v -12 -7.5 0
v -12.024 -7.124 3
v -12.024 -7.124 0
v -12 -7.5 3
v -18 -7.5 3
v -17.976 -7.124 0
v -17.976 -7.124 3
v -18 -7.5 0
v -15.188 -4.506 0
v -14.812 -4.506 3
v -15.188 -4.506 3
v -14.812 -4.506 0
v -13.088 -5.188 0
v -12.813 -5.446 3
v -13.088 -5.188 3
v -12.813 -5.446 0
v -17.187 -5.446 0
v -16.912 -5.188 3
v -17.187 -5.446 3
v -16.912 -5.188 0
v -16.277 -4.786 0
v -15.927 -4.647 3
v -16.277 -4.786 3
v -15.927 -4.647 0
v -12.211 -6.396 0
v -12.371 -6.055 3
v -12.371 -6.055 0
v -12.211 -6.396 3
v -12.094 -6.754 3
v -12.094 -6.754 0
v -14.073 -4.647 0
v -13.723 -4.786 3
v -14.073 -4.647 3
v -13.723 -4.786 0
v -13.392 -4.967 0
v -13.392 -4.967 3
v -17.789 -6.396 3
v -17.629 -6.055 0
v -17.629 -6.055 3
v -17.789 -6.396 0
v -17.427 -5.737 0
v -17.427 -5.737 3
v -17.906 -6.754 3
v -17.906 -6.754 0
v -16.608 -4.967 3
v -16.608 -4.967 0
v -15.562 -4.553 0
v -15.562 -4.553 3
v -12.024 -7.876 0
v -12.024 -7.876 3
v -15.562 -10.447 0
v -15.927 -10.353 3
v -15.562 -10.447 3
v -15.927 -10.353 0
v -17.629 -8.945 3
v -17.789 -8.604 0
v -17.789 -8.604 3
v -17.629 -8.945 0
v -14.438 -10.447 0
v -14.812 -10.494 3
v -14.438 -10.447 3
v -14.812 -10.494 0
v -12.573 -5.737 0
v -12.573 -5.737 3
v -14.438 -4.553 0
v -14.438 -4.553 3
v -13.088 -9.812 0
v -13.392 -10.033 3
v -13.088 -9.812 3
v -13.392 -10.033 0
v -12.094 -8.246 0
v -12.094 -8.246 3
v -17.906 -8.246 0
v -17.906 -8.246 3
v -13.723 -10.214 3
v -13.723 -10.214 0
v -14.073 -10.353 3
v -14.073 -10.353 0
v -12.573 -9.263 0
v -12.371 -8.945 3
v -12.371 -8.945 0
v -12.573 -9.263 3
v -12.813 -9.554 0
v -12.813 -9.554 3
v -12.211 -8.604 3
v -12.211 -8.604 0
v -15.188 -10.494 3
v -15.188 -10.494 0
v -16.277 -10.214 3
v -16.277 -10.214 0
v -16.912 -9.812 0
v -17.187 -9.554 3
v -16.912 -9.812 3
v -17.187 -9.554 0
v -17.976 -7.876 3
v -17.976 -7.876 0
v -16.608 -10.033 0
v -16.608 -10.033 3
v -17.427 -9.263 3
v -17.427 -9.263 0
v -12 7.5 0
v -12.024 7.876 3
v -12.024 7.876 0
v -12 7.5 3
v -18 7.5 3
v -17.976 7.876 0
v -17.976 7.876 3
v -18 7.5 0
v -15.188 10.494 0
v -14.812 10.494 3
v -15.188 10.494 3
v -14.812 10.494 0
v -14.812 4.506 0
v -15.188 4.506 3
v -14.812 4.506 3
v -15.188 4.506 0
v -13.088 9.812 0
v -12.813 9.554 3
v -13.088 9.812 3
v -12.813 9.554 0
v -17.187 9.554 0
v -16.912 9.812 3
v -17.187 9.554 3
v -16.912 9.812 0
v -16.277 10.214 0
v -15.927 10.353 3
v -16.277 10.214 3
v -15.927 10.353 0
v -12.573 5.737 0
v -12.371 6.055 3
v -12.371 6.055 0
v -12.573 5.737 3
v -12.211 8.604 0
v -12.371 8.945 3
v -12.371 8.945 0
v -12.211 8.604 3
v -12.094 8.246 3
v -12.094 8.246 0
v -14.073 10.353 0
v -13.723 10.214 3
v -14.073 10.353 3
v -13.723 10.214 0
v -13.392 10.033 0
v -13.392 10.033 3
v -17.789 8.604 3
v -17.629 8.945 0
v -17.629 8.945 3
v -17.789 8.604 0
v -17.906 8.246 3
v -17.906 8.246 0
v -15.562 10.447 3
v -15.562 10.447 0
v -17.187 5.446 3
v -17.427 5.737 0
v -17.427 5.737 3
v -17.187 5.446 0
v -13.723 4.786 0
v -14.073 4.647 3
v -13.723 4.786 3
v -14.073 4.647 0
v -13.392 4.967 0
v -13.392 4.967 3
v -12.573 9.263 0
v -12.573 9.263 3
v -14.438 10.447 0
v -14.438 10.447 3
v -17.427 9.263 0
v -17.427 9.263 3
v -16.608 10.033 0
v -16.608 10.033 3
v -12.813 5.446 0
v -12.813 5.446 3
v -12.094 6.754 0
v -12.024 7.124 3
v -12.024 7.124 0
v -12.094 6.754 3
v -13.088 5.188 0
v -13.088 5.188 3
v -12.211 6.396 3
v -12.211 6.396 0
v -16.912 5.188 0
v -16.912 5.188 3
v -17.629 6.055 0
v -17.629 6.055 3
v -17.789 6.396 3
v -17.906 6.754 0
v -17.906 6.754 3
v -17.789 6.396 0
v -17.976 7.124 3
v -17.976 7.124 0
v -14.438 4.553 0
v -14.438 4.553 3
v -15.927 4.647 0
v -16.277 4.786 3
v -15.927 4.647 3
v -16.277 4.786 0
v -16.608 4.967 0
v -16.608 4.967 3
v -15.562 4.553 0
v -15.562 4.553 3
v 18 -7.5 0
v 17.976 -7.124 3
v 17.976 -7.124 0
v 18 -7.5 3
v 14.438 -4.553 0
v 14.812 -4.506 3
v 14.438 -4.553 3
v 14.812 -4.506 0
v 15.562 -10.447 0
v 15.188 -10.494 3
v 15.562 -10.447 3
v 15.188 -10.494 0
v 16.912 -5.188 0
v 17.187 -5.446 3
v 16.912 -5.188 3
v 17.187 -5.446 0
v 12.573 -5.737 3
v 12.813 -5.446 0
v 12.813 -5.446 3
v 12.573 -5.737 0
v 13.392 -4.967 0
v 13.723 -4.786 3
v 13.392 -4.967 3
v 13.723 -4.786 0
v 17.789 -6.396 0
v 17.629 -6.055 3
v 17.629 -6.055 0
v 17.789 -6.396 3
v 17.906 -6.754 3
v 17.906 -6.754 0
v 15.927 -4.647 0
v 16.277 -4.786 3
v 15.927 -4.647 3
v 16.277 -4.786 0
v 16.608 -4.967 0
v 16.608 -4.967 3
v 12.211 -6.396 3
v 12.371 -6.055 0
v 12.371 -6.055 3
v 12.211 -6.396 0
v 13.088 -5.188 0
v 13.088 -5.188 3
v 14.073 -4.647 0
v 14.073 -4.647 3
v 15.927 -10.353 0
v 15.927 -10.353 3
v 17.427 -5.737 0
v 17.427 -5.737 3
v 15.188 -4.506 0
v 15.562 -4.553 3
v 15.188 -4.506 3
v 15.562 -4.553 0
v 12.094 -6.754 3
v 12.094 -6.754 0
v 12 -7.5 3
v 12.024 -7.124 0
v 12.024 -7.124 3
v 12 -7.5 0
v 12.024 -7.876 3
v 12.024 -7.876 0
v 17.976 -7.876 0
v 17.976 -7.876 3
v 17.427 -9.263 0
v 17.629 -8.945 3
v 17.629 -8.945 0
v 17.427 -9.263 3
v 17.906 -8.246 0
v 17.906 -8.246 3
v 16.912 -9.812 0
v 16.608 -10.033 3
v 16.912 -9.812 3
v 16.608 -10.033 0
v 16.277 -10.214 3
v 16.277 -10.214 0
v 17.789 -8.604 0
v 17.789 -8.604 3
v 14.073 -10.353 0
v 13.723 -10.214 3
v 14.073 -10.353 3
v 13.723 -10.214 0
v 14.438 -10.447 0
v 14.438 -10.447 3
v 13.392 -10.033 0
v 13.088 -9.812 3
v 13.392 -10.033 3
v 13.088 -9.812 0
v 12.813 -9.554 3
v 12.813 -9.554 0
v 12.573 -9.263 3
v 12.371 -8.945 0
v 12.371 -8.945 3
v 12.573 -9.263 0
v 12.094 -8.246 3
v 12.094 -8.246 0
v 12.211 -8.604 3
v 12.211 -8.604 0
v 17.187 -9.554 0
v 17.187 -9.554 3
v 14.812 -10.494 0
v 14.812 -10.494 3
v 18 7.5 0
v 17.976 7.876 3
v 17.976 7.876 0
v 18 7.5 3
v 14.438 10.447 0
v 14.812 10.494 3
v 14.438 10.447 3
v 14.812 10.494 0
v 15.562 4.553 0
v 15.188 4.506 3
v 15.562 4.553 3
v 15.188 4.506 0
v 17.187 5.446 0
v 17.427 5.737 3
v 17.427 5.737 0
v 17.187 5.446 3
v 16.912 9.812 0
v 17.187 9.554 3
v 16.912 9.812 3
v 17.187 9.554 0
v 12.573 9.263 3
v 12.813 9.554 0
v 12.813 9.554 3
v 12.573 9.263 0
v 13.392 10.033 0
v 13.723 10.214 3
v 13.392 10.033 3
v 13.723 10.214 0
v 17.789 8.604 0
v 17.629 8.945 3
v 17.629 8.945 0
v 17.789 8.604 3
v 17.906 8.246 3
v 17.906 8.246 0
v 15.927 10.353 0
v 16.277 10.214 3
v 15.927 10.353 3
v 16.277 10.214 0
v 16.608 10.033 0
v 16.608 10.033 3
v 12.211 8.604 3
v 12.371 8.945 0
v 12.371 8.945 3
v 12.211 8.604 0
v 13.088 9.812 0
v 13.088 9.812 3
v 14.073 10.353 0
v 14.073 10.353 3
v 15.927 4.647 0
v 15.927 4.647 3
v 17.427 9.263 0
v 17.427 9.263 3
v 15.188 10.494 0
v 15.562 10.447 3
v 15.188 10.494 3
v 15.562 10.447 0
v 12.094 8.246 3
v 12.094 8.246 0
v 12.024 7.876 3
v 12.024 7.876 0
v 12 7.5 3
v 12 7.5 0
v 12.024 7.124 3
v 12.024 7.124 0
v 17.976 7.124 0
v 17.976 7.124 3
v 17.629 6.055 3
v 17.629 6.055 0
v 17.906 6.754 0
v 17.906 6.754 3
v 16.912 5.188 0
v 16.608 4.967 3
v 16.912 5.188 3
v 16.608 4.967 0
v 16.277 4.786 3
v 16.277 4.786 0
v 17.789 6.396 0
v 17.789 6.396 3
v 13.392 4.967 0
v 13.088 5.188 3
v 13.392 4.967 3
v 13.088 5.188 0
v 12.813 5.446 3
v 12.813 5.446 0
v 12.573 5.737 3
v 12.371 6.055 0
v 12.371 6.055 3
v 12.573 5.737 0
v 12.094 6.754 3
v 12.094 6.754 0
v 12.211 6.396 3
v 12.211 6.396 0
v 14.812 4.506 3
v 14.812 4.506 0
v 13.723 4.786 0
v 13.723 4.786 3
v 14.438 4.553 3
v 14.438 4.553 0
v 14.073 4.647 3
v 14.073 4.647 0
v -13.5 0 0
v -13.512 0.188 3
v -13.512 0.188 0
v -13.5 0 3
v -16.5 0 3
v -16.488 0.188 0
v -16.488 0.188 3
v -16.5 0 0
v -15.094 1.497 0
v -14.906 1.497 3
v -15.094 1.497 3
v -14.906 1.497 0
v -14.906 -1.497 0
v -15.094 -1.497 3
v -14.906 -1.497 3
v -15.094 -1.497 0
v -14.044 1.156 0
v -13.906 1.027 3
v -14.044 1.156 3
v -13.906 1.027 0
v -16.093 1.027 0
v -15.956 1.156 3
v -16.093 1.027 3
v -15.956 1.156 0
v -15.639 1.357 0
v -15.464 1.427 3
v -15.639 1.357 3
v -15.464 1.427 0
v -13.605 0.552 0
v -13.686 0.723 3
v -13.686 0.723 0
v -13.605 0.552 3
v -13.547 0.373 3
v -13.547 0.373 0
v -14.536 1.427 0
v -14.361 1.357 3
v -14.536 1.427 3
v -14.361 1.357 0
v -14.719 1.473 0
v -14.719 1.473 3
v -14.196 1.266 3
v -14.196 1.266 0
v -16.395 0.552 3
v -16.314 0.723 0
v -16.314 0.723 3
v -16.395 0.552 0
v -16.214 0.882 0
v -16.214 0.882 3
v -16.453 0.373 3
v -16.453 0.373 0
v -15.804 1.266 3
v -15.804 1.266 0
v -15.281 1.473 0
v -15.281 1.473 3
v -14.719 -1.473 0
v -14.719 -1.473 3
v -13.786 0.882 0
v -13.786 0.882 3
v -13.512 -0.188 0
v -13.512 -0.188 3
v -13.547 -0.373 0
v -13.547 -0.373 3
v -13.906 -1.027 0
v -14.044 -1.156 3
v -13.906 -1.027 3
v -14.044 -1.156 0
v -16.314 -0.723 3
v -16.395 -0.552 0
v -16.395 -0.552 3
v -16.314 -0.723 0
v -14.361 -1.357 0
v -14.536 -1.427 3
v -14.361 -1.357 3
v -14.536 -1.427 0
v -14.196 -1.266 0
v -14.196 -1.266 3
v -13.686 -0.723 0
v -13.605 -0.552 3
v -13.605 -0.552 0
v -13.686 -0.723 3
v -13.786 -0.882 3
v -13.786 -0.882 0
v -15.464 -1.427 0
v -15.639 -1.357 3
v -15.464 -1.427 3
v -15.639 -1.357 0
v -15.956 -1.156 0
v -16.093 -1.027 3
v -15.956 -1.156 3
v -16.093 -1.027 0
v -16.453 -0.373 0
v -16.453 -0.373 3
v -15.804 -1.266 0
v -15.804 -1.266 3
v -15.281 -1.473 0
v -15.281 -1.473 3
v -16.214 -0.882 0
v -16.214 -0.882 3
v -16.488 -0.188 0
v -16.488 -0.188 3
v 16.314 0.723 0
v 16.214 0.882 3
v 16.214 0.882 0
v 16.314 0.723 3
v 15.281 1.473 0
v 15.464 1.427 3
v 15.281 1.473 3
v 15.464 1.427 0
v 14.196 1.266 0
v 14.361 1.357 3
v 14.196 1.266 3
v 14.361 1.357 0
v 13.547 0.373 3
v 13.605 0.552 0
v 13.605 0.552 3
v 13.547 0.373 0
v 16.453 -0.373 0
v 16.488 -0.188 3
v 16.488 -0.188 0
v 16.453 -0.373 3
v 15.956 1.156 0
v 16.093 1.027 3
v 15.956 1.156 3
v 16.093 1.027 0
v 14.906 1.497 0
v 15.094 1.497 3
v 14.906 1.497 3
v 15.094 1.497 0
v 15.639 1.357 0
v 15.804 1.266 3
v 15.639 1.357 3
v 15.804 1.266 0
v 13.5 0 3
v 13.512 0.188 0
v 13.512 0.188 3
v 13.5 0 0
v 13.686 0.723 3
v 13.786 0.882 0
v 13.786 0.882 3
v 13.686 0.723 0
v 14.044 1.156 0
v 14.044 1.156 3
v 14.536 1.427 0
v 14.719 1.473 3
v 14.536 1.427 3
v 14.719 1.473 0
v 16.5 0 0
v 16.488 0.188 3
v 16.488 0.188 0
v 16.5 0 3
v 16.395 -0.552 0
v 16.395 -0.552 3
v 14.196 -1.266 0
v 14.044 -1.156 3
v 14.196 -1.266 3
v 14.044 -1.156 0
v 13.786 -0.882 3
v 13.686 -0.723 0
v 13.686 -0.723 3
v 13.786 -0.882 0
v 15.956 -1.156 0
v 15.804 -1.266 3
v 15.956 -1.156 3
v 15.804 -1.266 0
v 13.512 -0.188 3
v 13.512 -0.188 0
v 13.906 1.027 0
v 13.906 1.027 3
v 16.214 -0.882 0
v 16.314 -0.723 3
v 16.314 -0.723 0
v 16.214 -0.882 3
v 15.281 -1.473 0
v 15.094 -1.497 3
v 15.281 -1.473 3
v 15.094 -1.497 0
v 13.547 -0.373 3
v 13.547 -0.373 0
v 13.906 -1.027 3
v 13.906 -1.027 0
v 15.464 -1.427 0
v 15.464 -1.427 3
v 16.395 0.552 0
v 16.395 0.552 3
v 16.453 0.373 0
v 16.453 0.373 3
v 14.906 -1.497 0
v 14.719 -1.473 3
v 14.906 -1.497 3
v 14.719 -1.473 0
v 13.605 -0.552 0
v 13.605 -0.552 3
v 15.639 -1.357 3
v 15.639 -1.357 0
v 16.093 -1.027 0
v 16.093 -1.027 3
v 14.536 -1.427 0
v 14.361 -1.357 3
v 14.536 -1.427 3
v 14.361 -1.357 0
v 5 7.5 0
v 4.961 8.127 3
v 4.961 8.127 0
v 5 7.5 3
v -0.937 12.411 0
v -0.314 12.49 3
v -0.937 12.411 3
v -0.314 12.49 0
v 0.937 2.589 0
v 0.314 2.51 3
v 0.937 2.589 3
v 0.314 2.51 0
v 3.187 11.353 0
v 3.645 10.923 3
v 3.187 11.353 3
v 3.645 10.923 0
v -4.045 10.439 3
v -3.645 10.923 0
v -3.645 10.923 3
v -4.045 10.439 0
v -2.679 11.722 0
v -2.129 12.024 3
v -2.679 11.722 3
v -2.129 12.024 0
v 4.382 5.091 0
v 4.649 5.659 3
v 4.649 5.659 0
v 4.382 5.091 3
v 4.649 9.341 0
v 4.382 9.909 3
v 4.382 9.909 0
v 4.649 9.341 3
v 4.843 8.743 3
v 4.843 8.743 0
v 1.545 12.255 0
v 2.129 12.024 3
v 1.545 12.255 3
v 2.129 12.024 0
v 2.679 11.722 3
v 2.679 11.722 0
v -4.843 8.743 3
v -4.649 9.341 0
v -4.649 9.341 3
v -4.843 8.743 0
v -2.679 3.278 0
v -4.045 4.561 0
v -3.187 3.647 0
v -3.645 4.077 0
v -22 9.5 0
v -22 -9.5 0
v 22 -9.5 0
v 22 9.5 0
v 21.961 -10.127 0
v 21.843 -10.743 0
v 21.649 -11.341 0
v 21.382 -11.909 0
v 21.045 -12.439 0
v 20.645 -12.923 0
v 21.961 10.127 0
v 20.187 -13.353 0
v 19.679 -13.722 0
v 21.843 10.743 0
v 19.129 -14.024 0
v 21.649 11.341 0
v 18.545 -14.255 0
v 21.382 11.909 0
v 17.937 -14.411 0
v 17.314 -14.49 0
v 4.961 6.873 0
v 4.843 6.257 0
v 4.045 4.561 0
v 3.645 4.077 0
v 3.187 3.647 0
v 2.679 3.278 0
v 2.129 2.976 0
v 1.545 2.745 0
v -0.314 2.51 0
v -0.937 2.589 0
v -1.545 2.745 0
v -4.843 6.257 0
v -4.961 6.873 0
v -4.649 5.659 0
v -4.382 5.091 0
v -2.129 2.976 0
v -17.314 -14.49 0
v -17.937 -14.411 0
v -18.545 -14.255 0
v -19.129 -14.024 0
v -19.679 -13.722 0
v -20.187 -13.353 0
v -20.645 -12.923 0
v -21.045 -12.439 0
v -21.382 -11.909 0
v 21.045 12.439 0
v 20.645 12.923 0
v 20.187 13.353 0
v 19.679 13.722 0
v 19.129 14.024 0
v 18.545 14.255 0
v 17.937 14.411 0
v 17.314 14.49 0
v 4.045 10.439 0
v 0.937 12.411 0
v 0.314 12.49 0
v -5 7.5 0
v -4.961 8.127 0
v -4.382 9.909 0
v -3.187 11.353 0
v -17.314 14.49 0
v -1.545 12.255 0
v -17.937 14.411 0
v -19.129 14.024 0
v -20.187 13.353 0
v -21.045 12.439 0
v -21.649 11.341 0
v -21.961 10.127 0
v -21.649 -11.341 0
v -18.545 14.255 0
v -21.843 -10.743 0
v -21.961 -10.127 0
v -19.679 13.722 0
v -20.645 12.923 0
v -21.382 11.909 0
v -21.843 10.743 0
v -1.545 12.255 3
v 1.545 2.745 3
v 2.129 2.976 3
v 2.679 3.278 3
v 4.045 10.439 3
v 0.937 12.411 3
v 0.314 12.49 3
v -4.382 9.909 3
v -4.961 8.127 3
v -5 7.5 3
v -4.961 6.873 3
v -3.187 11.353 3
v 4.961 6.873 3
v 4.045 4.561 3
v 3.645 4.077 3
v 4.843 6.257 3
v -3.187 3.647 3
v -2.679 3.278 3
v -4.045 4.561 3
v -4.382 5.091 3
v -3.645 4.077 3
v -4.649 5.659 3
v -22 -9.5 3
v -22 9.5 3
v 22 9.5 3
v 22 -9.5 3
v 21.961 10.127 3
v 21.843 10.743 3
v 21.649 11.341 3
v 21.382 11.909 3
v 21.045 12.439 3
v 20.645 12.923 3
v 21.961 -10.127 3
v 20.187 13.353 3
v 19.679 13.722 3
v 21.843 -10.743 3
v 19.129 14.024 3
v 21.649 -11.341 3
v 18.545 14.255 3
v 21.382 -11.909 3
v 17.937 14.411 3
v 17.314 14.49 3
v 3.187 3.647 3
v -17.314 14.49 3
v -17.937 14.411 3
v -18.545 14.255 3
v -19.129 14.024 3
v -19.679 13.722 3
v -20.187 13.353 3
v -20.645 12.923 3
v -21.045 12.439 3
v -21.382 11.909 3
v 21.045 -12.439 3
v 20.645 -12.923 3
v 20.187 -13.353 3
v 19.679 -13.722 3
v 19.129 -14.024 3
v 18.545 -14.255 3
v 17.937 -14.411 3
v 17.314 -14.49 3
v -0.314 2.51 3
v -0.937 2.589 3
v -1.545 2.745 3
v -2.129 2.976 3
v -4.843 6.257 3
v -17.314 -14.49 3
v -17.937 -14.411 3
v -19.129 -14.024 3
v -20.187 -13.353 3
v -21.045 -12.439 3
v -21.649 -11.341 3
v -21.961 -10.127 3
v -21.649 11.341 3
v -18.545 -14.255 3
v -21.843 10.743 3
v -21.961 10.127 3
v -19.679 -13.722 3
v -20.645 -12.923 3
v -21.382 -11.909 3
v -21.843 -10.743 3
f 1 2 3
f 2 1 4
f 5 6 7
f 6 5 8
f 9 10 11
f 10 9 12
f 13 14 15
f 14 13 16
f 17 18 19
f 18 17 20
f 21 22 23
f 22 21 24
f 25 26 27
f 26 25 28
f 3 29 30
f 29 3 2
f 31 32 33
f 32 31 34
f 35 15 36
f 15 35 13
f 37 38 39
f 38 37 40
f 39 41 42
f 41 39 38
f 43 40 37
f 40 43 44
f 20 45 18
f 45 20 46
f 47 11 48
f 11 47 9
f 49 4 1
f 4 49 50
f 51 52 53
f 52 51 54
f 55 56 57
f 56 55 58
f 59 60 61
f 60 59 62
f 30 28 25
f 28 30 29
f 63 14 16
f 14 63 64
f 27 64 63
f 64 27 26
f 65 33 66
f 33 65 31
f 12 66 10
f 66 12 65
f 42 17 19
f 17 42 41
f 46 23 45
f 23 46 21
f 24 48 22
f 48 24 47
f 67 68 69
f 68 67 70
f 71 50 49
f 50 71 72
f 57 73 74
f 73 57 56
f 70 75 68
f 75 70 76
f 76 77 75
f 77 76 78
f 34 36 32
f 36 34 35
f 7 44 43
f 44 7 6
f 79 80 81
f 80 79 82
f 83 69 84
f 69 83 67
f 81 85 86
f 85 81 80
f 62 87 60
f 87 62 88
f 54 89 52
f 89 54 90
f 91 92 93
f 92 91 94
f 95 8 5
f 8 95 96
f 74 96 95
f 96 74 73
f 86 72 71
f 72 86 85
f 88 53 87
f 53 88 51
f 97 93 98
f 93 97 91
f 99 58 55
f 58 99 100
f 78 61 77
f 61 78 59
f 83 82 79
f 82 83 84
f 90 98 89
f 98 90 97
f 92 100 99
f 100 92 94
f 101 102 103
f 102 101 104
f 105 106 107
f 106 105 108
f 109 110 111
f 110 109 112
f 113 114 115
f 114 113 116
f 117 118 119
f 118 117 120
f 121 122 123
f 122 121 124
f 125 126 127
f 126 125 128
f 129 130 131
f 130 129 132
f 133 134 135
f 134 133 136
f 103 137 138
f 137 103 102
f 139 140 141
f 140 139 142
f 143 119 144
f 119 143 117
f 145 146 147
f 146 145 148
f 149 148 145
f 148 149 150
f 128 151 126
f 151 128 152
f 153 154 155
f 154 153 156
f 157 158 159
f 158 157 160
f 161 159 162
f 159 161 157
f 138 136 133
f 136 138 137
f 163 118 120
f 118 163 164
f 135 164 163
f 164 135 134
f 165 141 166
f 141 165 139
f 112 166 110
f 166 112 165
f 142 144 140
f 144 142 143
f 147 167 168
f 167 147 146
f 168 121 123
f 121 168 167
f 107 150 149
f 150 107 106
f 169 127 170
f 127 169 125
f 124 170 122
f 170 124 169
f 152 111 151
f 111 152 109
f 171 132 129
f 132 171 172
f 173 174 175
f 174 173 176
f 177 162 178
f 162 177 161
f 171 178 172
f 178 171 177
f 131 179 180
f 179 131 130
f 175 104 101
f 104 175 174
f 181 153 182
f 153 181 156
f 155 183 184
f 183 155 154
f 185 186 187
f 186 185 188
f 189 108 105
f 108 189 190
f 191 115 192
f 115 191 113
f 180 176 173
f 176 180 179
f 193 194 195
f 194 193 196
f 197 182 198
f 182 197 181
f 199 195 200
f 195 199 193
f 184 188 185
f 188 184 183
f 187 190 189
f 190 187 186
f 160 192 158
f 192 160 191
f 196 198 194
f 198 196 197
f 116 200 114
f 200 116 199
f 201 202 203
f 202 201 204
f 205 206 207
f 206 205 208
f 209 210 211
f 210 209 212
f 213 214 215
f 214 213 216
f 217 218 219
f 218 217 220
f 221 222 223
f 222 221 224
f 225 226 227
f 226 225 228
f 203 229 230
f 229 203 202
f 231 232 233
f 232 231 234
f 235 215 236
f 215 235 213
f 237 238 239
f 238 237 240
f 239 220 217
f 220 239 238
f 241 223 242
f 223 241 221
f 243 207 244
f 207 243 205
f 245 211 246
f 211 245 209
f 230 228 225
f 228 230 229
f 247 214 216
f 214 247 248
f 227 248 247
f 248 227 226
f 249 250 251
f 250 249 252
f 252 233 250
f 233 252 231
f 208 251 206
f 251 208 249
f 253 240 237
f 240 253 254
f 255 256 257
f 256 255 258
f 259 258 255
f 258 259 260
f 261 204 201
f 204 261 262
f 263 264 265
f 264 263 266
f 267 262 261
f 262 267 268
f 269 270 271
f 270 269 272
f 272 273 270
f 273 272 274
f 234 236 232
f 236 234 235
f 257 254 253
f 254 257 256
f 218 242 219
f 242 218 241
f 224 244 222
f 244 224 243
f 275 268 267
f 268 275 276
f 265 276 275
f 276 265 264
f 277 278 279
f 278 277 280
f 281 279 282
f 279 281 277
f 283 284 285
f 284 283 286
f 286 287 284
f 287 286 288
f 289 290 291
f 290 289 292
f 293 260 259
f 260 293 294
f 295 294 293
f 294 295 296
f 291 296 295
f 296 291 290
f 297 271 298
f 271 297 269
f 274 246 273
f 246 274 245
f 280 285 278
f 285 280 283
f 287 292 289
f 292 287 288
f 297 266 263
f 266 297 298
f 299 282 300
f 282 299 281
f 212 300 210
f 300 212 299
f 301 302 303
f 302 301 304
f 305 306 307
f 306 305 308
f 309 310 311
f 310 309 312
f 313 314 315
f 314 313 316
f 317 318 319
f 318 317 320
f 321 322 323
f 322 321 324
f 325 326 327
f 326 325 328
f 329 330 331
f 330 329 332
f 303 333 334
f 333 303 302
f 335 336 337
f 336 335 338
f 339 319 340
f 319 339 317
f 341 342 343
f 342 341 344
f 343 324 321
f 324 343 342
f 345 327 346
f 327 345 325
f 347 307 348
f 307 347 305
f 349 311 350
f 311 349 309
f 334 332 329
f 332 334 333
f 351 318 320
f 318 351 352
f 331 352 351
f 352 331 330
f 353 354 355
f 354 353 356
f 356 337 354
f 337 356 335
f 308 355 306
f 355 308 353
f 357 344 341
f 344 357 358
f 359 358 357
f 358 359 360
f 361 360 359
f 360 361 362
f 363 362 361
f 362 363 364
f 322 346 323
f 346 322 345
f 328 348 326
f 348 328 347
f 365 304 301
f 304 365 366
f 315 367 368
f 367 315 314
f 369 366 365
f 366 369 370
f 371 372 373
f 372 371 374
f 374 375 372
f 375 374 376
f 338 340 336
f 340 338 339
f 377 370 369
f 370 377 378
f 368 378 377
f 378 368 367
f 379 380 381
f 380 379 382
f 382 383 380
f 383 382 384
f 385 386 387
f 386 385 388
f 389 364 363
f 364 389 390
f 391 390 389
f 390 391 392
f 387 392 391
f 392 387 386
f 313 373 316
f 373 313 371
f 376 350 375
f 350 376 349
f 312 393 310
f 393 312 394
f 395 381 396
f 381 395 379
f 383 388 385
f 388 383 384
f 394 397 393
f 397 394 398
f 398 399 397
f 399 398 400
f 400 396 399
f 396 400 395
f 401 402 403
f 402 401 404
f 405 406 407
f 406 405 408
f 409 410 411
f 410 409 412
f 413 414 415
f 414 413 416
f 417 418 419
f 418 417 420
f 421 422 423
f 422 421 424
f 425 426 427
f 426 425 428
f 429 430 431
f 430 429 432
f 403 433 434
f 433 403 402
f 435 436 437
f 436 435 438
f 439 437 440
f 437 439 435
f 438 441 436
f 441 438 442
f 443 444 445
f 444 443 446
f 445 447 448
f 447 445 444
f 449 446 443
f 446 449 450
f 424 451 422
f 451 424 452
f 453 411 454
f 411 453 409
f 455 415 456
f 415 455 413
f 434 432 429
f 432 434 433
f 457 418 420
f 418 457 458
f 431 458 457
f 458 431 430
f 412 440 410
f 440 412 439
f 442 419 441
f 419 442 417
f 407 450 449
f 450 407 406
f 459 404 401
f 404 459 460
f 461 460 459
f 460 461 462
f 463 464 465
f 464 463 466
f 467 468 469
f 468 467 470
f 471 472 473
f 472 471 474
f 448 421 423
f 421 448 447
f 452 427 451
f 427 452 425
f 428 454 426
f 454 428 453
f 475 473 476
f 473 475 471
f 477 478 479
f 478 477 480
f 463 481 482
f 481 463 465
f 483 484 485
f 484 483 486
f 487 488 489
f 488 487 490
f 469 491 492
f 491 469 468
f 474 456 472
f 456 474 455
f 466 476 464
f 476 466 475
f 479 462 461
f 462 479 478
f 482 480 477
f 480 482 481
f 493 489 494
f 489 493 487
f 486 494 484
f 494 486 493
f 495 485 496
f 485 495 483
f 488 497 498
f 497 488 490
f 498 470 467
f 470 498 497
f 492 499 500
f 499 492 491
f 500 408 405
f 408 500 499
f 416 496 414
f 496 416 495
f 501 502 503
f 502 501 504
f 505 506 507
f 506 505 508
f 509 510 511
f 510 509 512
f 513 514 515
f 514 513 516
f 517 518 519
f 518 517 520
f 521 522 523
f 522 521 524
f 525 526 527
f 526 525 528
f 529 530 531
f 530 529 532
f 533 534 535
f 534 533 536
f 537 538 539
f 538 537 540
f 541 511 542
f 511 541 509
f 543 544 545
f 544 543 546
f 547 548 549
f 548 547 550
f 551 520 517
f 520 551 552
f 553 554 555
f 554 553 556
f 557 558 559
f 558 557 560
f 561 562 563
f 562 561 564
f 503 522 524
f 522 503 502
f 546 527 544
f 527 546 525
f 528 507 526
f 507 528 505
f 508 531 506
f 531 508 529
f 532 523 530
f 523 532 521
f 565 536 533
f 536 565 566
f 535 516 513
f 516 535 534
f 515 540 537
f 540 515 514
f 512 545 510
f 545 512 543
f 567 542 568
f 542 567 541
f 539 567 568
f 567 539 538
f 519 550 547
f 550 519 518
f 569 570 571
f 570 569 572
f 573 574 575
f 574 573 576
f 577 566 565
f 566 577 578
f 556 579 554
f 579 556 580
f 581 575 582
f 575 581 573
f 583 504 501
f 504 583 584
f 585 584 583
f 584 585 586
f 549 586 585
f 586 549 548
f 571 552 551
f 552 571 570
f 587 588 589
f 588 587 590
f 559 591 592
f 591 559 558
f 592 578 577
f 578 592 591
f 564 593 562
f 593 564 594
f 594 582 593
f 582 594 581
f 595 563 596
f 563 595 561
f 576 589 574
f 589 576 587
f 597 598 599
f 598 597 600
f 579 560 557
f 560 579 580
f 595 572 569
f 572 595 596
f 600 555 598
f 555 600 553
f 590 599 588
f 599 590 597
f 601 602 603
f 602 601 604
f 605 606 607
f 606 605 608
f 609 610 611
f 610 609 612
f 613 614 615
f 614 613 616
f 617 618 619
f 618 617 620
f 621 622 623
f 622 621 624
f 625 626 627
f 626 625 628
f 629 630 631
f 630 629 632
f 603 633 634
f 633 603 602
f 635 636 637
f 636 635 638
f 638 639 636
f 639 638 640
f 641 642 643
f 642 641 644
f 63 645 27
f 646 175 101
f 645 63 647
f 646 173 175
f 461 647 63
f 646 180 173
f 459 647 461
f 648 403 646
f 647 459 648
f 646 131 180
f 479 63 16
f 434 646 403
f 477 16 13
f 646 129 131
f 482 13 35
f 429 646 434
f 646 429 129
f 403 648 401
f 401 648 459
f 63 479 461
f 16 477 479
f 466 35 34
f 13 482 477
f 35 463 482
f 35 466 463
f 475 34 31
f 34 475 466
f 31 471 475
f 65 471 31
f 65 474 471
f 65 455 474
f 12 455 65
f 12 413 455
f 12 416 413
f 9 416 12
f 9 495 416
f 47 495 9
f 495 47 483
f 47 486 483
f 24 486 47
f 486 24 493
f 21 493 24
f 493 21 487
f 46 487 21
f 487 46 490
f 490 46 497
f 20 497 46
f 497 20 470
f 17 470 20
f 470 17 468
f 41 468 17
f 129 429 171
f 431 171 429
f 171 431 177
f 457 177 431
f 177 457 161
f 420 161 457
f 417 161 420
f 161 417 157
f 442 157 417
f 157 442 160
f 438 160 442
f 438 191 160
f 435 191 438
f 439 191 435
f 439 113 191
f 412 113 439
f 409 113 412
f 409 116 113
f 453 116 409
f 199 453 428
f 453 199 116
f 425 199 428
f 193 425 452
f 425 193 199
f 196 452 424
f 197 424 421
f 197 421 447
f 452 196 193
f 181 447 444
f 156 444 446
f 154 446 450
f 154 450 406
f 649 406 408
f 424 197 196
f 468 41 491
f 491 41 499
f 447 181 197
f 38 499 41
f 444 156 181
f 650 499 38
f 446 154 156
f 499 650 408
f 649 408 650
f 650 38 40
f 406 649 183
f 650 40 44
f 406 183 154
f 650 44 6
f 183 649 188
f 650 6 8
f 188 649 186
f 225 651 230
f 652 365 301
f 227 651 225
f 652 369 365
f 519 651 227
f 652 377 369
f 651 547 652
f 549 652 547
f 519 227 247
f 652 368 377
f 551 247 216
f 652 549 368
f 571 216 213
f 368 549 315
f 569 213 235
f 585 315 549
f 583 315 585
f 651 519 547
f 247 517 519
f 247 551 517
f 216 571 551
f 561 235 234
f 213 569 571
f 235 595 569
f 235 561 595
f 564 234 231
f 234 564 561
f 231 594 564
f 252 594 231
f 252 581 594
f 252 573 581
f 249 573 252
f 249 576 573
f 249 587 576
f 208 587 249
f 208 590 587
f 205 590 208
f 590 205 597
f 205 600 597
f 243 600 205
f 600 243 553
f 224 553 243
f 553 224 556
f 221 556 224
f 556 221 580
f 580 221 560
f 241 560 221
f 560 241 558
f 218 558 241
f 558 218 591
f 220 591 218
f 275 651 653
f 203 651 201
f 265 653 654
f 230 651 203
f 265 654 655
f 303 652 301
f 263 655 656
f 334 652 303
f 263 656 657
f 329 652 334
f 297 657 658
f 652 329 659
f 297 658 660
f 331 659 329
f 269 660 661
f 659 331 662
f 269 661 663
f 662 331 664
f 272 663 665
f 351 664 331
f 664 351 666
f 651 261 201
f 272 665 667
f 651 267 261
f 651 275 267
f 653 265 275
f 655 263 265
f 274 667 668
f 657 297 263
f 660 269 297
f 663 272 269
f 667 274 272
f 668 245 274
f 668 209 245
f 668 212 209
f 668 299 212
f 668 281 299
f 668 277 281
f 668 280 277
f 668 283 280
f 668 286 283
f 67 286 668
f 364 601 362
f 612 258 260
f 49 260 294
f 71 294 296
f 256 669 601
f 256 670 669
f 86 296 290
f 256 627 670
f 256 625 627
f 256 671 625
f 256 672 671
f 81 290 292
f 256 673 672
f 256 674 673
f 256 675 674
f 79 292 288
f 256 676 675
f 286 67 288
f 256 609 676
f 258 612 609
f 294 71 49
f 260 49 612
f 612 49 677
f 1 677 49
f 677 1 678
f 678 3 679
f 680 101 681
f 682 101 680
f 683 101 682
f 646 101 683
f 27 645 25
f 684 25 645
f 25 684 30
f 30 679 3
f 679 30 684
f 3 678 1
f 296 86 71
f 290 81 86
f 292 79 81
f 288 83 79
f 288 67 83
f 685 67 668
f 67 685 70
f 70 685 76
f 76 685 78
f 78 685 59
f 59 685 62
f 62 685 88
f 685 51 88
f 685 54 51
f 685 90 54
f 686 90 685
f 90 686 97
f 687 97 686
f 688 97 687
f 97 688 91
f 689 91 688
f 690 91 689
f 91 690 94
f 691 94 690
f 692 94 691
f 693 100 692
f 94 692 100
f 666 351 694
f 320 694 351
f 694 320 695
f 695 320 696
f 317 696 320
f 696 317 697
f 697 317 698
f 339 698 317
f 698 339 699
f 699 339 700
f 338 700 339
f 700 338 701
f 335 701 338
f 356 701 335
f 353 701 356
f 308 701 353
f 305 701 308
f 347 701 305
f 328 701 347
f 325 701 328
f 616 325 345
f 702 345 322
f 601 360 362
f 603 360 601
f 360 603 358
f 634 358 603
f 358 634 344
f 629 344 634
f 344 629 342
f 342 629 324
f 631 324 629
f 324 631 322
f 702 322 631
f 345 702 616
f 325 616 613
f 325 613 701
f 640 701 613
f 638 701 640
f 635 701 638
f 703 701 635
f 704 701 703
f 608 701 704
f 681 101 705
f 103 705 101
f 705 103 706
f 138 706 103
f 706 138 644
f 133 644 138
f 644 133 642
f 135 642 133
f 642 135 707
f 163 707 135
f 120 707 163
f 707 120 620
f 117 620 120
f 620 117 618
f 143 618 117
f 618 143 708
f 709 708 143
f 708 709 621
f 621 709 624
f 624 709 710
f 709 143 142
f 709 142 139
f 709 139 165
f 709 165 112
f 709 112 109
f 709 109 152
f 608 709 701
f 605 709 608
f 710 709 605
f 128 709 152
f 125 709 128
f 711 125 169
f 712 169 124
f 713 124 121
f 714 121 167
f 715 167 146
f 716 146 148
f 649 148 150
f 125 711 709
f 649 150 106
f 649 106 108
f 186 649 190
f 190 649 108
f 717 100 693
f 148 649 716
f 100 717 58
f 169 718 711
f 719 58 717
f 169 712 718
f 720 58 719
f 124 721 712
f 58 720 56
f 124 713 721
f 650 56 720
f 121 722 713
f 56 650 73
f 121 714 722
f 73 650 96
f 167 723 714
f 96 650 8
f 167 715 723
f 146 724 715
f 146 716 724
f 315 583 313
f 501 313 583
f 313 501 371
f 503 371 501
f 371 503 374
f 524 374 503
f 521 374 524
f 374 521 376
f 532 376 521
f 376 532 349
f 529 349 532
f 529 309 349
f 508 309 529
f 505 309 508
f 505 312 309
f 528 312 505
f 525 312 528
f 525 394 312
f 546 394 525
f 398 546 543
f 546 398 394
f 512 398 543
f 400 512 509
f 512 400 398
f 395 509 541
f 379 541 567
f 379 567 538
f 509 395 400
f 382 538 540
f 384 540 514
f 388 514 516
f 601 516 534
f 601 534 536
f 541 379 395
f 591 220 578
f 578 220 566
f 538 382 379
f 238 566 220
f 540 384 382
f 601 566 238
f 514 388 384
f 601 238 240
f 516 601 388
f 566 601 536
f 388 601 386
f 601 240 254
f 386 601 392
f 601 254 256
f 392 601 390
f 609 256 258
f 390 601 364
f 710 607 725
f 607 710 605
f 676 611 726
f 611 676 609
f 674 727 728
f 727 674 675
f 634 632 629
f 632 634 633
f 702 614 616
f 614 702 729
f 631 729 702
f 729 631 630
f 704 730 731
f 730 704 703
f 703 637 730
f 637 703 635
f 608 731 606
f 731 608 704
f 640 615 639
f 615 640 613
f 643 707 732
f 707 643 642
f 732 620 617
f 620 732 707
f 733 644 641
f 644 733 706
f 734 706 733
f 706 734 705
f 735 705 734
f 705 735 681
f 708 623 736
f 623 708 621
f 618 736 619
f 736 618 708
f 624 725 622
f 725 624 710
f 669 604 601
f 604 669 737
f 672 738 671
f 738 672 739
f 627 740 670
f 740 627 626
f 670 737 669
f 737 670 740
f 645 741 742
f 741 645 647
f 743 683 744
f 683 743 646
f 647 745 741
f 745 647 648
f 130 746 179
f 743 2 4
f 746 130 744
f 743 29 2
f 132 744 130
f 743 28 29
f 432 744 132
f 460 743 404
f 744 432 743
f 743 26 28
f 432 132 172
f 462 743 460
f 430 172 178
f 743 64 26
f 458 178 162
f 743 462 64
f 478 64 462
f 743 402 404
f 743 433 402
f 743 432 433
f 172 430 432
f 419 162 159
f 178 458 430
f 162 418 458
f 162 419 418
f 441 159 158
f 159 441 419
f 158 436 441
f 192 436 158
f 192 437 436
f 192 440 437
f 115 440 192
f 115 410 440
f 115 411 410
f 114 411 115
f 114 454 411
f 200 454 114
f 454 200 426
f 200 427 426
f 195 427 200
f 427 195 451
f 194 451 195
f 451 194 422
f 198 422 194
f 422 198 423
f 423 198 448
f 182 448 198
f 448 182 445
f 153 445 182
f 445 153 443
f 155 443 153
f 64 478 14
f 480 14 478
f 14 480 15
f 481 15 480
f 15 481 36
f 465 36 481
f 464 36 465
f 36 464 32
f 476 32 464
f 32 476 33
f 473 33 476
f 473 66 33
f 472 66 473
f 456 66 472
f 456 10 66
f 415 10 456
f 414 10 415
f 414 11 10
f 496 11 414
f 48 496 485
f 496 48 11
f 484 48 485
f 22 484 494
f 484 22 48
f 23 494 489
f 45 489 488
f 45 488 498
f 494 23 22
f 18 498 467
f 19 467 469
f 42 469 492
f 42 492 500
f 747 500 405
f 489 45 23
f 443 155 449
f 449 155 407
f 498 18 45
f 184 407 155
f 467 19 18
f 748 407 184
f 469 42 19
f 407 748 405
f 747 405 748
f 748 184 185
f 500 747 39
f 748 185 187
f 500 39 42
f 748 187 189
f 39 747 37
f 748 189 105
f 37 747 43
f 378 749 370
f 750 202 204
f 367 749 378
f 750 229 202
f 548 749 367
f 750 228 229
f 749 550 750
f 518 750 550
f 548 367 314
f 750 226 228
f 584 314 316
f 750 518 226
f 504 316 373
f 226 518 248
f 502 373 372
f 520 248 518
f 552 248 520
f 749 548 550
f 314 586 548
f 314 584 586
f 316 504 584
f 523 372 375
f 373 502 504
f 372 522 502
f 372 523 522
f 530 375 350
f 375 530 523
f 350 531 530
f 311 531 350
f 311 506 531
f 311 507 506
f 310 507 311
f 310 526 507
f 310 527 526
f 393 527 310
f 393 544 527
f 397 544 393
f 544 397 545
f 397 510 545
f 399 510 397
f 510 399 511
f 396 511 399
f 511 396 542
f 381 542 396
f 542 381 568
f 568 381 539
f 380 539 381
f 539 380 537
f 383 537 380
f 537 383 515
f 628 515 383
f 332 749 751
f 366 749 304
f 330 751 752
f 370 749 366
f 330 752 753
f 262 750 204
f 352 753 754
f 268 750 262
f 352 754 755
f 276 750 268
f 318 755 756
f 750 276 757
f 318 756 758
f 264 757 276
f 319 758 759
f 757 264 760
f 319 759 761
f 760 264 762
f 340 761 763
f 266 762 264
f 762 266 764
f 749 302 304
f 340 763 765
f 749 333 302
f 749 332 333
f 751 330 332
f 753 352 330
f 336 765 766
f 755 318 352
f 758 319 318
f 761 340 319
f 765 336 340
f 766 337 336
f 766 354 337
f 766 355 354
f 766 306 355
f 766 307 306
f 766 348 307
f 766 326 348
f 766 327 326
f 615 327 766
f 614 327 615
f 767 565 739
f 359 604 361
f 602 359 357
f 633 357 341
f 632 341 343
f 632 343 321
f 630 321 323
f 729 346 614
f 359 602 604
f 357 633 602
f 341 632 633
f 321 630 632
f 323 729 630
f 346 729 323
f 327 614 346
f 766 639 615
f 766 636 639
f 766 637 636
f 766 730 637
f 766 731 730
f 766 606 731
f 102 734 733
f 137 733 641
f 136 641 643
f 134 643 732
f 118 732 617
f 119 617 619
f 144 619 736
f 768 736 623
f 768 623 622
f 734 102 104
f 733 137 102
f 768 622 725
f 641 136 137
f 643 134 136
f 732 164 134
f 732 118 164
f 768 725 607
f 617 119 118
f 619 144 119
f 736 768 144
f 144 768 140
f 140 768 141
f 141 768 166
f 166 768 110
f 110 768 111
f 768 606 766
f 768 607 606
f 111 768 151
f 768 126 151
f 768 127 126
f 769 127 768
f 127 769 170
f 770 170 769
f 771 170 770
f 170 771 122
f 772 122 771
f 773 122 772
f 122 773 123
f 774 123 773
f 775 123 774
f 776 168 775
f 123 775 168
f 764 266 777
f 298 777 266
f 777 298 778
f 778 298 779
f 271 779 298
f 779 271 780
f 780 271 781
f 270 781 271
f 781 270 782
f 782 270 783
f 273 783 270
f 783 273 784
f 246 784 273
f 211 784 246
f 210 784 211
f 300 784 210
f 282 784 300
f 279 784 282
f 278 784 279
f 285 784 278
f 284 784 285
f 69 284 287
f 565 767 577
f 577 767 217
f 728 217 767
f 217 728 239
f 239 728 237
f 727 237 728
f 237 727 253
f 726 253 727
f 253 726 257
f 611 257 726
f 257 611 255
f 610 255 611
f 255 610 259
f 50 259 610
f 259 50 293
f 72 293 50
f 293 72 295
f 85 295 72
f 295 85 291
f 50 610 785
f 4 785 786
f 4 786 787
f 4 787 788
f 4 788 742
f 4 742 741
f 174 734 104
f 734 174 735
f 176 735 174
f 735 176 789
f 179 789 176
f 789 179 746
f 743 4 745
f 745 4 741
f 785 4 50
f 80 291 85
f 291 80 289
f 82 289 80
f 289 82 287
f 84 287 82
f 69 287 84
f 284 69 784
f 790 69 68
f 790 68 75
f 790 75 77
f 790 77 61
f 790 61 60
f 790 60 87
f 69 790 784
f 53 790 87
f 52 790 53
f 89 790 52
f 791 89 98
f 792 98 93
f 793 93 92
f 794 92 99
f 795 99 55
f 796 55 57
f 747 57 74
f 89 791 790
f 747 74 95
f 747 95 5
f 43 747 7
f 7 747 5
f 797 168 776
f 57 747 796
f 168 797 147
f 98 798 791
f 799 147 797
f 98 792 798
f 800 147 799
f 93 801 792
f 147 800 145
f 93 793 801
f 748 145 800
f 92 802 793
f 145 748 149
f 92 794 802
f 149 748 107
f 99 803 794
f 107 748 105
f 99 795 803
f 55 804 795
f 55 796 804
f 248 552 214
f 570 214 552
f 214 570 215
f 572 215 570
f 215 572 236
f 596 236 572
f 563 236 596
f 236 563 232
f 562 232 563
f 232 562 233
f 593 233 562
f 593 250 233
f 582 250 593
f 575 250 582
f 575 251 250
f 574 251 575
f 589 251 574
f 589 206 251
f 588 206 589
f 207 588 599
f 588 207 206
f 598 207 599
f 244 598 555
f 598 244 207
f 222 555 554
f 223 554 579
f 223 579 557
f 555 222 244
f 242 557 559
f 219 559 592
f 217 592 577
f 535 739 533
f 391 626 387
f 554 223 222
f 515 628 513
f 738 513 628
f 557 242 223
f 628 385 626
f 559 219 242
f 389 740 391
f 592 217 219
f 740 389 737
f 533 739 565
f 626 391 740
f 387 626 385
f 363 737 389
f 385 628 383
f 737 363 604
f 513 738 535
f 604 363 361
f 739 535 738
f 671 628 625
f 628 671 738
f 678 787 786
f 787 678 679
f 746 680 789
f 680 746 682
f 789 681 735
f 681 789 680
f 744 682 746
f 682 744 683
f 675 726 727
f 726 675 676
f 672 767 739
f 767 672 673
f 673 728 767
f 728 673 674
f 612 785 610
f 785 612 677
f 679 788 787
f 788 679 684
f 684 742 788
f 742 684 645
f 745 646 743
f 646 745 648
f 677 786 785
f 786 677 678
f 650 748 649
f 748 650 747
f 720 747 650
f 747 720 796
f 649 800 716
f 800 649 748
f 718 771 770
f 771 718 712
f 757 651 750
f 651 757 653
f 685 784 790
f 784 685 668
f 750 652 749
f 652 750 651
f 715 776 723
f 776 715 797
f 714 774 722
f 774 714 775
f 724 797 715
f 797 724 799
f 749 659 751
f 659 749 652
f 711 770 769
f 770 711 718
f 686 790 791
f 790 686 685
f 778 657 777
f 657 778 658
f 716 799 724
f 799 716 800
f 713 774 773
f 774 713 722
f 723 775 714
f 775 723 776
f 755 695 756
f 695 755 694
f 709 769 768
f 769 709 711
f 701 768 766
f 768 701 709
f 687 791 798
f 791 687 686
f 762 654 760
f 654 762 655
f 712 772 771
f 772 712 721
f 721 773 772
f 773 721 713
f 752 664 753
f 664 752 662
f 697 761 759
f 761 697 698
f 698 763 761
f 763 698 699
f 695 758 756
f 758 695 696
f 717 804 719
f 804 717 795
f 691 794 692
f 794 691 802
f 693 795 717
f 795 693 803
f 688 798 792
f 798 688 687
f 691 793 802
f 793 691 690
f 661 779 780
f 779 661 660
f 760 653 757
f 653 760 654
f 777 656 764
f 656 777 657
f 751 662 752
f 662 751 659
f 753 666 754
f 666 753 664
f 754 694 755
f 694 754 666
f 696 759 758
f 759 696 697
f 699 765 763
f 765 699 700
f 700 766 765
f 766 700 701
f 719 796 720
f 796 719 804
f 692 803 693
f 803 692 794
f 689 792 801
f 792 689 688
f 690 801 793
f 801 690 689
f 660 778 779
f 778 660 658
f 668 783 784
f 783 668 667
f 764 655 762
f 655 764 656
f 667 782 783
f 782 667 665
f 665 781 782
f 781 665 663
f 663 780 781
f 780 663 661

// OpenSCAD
$fn = 50;


difference() {
	union() {
		hull() {
			translate(v = [-17.0000000000, 9.5000000000, 0]) {
				cylinder(h = 3, r = 5);
			}
			translate(v = [17.0000000000, 9.5000000000, 0]) {
				cylinder(h = 3, r = 5);
			}
			translate(v = [-17.0000000000, -9.5000000000, 0]) {
				cylinder(h = 3, r = 5);
			}
			translate(v = [17.0000000000, -9.5000000000, 0]) {
				cylinder(h = 3, r = 5);
			}
		}
	}
	union() {
		translate(v = [-15.0000000000, -7.5000000000, -100.0000000000]) {
			cylinder(h = 200, r = 3.0000000000);
		}
		translate(v = [-15.0000000000, 7.5000000000, -100.0000000000]) {
			cylinder(h = 200, r = 3.0000000000);
		}
		translate(v = [15.0000000000, -7.5000000000, -100.0000000000]) {
			cylinder(h = 200, r = 3.0000000000);
		}
		translate(v = [15.0000000000, 7.5000000000, -100.0000000000]) {
			cylinder(h = 200, r = 3.0000000000);
		}
		translate(v = [15.0000000000, -7.5000000000, -100.0000000000]) {
			cylinder(h = 200, r = 3.0000000000);
		}
		translate(v = [15.0000000000, 7.5000000000, -100.0000000000]) {
			cylinder(h = 200, r = 3.0000000000);
		}
		translate(v = [-15.0000000000, -7.5000000000, -100.0000000000]) {
			cylinder(h = 200, r = 1.5000000000);
		}
		translate(v = [-15.0000000000, 0.0000000000, -100.0000000000]) {
			cylinder(h = 200, r = 1.5000000000);
		}
		translate(v = [-15.0000000000, 7.5000000000, -100.0000000000]) {
			cylinder(h = 200, r = 1.5000000000);
		}
		translate(v = [15.0000000000, -7.5000000000, -100.0000000000]) {
			cylinder(h = 200, r = 1.5000000000);
		}
		translate(v = [15.0000000000, 0.0000000000, -100.0000000000]) {
			cylinder(h = 200, r = 1.5000000000);
		}
		translate(v = [15.0000000000, 7.5000000000, -100.0000000000]) {
			cylinder(h = 200, r = 1.5000000000);
		}
		translate(v = [-15.0000000000, -7.5000000000, -100.0000000000]) {
			cylinder(h = 200, r = 1.5000000000);
		}
		translate(v = [-15.0000000000, 0.0000000000, -100.0000000000]) {
			cylinder(h = 200, r = 1.5000000000);
		}
		translate(v = [-15.0000000000, 7.5000000000, -100.0000000000]) {
			cylinder(h = 200, r = 1.5000000000);
		}
		translate(v = [15.0000000000, -7.5000000000, -100.0000000000]) {
			cylinder(h = 200, r = 1.5000000000);
		}
		translate(v = [15.0000000000, 0.0000000000, -100.0000000000]) {
			cylinder(h = 200, r = 1.5000000000);
		}
		translate(v = [15.0000000000, 7.5000000000, -100.0000000000]) {
			cylinder(h = 200, r = 1.5000000000);
		}
		translate(v = [-15.0000000000, -7.5000000000, -100.0000000000]) {
			cylinder(h = 200, r = 1.5000000000);
		}
		translate(v = [-15.0000000000, 0.0000000000, -100.0000000000]) {
			cylinder(h = 200, r = 1.5000000000);
		}
		translate(v = [-15.0000000000, 7.5000000000, -100.0000000000]) {
			cylinder(h = 200, r = 1.5000000000);
		}
		translate(v = [15.0000000000, -7.5000000000, -100.0000000000]) {
			cylinder(h = 200, r = 1.5000000000);
		}
		translate(v = [15.0000000000, 0.0000000000, -100.0000000000]) {
			cylinder(h = 200, r = 1.5000000000);
		}
		translate(v = [15.0000000000, 7.5000000000, -100.0000000000]) {
			cylinder(h = 200, r = 1.5000000000);
		}
		#translate(v = [0, 7.5000000000, 0]) {
			cylinder(h = 3, r = 5.0000000000);
		}
	}
}
